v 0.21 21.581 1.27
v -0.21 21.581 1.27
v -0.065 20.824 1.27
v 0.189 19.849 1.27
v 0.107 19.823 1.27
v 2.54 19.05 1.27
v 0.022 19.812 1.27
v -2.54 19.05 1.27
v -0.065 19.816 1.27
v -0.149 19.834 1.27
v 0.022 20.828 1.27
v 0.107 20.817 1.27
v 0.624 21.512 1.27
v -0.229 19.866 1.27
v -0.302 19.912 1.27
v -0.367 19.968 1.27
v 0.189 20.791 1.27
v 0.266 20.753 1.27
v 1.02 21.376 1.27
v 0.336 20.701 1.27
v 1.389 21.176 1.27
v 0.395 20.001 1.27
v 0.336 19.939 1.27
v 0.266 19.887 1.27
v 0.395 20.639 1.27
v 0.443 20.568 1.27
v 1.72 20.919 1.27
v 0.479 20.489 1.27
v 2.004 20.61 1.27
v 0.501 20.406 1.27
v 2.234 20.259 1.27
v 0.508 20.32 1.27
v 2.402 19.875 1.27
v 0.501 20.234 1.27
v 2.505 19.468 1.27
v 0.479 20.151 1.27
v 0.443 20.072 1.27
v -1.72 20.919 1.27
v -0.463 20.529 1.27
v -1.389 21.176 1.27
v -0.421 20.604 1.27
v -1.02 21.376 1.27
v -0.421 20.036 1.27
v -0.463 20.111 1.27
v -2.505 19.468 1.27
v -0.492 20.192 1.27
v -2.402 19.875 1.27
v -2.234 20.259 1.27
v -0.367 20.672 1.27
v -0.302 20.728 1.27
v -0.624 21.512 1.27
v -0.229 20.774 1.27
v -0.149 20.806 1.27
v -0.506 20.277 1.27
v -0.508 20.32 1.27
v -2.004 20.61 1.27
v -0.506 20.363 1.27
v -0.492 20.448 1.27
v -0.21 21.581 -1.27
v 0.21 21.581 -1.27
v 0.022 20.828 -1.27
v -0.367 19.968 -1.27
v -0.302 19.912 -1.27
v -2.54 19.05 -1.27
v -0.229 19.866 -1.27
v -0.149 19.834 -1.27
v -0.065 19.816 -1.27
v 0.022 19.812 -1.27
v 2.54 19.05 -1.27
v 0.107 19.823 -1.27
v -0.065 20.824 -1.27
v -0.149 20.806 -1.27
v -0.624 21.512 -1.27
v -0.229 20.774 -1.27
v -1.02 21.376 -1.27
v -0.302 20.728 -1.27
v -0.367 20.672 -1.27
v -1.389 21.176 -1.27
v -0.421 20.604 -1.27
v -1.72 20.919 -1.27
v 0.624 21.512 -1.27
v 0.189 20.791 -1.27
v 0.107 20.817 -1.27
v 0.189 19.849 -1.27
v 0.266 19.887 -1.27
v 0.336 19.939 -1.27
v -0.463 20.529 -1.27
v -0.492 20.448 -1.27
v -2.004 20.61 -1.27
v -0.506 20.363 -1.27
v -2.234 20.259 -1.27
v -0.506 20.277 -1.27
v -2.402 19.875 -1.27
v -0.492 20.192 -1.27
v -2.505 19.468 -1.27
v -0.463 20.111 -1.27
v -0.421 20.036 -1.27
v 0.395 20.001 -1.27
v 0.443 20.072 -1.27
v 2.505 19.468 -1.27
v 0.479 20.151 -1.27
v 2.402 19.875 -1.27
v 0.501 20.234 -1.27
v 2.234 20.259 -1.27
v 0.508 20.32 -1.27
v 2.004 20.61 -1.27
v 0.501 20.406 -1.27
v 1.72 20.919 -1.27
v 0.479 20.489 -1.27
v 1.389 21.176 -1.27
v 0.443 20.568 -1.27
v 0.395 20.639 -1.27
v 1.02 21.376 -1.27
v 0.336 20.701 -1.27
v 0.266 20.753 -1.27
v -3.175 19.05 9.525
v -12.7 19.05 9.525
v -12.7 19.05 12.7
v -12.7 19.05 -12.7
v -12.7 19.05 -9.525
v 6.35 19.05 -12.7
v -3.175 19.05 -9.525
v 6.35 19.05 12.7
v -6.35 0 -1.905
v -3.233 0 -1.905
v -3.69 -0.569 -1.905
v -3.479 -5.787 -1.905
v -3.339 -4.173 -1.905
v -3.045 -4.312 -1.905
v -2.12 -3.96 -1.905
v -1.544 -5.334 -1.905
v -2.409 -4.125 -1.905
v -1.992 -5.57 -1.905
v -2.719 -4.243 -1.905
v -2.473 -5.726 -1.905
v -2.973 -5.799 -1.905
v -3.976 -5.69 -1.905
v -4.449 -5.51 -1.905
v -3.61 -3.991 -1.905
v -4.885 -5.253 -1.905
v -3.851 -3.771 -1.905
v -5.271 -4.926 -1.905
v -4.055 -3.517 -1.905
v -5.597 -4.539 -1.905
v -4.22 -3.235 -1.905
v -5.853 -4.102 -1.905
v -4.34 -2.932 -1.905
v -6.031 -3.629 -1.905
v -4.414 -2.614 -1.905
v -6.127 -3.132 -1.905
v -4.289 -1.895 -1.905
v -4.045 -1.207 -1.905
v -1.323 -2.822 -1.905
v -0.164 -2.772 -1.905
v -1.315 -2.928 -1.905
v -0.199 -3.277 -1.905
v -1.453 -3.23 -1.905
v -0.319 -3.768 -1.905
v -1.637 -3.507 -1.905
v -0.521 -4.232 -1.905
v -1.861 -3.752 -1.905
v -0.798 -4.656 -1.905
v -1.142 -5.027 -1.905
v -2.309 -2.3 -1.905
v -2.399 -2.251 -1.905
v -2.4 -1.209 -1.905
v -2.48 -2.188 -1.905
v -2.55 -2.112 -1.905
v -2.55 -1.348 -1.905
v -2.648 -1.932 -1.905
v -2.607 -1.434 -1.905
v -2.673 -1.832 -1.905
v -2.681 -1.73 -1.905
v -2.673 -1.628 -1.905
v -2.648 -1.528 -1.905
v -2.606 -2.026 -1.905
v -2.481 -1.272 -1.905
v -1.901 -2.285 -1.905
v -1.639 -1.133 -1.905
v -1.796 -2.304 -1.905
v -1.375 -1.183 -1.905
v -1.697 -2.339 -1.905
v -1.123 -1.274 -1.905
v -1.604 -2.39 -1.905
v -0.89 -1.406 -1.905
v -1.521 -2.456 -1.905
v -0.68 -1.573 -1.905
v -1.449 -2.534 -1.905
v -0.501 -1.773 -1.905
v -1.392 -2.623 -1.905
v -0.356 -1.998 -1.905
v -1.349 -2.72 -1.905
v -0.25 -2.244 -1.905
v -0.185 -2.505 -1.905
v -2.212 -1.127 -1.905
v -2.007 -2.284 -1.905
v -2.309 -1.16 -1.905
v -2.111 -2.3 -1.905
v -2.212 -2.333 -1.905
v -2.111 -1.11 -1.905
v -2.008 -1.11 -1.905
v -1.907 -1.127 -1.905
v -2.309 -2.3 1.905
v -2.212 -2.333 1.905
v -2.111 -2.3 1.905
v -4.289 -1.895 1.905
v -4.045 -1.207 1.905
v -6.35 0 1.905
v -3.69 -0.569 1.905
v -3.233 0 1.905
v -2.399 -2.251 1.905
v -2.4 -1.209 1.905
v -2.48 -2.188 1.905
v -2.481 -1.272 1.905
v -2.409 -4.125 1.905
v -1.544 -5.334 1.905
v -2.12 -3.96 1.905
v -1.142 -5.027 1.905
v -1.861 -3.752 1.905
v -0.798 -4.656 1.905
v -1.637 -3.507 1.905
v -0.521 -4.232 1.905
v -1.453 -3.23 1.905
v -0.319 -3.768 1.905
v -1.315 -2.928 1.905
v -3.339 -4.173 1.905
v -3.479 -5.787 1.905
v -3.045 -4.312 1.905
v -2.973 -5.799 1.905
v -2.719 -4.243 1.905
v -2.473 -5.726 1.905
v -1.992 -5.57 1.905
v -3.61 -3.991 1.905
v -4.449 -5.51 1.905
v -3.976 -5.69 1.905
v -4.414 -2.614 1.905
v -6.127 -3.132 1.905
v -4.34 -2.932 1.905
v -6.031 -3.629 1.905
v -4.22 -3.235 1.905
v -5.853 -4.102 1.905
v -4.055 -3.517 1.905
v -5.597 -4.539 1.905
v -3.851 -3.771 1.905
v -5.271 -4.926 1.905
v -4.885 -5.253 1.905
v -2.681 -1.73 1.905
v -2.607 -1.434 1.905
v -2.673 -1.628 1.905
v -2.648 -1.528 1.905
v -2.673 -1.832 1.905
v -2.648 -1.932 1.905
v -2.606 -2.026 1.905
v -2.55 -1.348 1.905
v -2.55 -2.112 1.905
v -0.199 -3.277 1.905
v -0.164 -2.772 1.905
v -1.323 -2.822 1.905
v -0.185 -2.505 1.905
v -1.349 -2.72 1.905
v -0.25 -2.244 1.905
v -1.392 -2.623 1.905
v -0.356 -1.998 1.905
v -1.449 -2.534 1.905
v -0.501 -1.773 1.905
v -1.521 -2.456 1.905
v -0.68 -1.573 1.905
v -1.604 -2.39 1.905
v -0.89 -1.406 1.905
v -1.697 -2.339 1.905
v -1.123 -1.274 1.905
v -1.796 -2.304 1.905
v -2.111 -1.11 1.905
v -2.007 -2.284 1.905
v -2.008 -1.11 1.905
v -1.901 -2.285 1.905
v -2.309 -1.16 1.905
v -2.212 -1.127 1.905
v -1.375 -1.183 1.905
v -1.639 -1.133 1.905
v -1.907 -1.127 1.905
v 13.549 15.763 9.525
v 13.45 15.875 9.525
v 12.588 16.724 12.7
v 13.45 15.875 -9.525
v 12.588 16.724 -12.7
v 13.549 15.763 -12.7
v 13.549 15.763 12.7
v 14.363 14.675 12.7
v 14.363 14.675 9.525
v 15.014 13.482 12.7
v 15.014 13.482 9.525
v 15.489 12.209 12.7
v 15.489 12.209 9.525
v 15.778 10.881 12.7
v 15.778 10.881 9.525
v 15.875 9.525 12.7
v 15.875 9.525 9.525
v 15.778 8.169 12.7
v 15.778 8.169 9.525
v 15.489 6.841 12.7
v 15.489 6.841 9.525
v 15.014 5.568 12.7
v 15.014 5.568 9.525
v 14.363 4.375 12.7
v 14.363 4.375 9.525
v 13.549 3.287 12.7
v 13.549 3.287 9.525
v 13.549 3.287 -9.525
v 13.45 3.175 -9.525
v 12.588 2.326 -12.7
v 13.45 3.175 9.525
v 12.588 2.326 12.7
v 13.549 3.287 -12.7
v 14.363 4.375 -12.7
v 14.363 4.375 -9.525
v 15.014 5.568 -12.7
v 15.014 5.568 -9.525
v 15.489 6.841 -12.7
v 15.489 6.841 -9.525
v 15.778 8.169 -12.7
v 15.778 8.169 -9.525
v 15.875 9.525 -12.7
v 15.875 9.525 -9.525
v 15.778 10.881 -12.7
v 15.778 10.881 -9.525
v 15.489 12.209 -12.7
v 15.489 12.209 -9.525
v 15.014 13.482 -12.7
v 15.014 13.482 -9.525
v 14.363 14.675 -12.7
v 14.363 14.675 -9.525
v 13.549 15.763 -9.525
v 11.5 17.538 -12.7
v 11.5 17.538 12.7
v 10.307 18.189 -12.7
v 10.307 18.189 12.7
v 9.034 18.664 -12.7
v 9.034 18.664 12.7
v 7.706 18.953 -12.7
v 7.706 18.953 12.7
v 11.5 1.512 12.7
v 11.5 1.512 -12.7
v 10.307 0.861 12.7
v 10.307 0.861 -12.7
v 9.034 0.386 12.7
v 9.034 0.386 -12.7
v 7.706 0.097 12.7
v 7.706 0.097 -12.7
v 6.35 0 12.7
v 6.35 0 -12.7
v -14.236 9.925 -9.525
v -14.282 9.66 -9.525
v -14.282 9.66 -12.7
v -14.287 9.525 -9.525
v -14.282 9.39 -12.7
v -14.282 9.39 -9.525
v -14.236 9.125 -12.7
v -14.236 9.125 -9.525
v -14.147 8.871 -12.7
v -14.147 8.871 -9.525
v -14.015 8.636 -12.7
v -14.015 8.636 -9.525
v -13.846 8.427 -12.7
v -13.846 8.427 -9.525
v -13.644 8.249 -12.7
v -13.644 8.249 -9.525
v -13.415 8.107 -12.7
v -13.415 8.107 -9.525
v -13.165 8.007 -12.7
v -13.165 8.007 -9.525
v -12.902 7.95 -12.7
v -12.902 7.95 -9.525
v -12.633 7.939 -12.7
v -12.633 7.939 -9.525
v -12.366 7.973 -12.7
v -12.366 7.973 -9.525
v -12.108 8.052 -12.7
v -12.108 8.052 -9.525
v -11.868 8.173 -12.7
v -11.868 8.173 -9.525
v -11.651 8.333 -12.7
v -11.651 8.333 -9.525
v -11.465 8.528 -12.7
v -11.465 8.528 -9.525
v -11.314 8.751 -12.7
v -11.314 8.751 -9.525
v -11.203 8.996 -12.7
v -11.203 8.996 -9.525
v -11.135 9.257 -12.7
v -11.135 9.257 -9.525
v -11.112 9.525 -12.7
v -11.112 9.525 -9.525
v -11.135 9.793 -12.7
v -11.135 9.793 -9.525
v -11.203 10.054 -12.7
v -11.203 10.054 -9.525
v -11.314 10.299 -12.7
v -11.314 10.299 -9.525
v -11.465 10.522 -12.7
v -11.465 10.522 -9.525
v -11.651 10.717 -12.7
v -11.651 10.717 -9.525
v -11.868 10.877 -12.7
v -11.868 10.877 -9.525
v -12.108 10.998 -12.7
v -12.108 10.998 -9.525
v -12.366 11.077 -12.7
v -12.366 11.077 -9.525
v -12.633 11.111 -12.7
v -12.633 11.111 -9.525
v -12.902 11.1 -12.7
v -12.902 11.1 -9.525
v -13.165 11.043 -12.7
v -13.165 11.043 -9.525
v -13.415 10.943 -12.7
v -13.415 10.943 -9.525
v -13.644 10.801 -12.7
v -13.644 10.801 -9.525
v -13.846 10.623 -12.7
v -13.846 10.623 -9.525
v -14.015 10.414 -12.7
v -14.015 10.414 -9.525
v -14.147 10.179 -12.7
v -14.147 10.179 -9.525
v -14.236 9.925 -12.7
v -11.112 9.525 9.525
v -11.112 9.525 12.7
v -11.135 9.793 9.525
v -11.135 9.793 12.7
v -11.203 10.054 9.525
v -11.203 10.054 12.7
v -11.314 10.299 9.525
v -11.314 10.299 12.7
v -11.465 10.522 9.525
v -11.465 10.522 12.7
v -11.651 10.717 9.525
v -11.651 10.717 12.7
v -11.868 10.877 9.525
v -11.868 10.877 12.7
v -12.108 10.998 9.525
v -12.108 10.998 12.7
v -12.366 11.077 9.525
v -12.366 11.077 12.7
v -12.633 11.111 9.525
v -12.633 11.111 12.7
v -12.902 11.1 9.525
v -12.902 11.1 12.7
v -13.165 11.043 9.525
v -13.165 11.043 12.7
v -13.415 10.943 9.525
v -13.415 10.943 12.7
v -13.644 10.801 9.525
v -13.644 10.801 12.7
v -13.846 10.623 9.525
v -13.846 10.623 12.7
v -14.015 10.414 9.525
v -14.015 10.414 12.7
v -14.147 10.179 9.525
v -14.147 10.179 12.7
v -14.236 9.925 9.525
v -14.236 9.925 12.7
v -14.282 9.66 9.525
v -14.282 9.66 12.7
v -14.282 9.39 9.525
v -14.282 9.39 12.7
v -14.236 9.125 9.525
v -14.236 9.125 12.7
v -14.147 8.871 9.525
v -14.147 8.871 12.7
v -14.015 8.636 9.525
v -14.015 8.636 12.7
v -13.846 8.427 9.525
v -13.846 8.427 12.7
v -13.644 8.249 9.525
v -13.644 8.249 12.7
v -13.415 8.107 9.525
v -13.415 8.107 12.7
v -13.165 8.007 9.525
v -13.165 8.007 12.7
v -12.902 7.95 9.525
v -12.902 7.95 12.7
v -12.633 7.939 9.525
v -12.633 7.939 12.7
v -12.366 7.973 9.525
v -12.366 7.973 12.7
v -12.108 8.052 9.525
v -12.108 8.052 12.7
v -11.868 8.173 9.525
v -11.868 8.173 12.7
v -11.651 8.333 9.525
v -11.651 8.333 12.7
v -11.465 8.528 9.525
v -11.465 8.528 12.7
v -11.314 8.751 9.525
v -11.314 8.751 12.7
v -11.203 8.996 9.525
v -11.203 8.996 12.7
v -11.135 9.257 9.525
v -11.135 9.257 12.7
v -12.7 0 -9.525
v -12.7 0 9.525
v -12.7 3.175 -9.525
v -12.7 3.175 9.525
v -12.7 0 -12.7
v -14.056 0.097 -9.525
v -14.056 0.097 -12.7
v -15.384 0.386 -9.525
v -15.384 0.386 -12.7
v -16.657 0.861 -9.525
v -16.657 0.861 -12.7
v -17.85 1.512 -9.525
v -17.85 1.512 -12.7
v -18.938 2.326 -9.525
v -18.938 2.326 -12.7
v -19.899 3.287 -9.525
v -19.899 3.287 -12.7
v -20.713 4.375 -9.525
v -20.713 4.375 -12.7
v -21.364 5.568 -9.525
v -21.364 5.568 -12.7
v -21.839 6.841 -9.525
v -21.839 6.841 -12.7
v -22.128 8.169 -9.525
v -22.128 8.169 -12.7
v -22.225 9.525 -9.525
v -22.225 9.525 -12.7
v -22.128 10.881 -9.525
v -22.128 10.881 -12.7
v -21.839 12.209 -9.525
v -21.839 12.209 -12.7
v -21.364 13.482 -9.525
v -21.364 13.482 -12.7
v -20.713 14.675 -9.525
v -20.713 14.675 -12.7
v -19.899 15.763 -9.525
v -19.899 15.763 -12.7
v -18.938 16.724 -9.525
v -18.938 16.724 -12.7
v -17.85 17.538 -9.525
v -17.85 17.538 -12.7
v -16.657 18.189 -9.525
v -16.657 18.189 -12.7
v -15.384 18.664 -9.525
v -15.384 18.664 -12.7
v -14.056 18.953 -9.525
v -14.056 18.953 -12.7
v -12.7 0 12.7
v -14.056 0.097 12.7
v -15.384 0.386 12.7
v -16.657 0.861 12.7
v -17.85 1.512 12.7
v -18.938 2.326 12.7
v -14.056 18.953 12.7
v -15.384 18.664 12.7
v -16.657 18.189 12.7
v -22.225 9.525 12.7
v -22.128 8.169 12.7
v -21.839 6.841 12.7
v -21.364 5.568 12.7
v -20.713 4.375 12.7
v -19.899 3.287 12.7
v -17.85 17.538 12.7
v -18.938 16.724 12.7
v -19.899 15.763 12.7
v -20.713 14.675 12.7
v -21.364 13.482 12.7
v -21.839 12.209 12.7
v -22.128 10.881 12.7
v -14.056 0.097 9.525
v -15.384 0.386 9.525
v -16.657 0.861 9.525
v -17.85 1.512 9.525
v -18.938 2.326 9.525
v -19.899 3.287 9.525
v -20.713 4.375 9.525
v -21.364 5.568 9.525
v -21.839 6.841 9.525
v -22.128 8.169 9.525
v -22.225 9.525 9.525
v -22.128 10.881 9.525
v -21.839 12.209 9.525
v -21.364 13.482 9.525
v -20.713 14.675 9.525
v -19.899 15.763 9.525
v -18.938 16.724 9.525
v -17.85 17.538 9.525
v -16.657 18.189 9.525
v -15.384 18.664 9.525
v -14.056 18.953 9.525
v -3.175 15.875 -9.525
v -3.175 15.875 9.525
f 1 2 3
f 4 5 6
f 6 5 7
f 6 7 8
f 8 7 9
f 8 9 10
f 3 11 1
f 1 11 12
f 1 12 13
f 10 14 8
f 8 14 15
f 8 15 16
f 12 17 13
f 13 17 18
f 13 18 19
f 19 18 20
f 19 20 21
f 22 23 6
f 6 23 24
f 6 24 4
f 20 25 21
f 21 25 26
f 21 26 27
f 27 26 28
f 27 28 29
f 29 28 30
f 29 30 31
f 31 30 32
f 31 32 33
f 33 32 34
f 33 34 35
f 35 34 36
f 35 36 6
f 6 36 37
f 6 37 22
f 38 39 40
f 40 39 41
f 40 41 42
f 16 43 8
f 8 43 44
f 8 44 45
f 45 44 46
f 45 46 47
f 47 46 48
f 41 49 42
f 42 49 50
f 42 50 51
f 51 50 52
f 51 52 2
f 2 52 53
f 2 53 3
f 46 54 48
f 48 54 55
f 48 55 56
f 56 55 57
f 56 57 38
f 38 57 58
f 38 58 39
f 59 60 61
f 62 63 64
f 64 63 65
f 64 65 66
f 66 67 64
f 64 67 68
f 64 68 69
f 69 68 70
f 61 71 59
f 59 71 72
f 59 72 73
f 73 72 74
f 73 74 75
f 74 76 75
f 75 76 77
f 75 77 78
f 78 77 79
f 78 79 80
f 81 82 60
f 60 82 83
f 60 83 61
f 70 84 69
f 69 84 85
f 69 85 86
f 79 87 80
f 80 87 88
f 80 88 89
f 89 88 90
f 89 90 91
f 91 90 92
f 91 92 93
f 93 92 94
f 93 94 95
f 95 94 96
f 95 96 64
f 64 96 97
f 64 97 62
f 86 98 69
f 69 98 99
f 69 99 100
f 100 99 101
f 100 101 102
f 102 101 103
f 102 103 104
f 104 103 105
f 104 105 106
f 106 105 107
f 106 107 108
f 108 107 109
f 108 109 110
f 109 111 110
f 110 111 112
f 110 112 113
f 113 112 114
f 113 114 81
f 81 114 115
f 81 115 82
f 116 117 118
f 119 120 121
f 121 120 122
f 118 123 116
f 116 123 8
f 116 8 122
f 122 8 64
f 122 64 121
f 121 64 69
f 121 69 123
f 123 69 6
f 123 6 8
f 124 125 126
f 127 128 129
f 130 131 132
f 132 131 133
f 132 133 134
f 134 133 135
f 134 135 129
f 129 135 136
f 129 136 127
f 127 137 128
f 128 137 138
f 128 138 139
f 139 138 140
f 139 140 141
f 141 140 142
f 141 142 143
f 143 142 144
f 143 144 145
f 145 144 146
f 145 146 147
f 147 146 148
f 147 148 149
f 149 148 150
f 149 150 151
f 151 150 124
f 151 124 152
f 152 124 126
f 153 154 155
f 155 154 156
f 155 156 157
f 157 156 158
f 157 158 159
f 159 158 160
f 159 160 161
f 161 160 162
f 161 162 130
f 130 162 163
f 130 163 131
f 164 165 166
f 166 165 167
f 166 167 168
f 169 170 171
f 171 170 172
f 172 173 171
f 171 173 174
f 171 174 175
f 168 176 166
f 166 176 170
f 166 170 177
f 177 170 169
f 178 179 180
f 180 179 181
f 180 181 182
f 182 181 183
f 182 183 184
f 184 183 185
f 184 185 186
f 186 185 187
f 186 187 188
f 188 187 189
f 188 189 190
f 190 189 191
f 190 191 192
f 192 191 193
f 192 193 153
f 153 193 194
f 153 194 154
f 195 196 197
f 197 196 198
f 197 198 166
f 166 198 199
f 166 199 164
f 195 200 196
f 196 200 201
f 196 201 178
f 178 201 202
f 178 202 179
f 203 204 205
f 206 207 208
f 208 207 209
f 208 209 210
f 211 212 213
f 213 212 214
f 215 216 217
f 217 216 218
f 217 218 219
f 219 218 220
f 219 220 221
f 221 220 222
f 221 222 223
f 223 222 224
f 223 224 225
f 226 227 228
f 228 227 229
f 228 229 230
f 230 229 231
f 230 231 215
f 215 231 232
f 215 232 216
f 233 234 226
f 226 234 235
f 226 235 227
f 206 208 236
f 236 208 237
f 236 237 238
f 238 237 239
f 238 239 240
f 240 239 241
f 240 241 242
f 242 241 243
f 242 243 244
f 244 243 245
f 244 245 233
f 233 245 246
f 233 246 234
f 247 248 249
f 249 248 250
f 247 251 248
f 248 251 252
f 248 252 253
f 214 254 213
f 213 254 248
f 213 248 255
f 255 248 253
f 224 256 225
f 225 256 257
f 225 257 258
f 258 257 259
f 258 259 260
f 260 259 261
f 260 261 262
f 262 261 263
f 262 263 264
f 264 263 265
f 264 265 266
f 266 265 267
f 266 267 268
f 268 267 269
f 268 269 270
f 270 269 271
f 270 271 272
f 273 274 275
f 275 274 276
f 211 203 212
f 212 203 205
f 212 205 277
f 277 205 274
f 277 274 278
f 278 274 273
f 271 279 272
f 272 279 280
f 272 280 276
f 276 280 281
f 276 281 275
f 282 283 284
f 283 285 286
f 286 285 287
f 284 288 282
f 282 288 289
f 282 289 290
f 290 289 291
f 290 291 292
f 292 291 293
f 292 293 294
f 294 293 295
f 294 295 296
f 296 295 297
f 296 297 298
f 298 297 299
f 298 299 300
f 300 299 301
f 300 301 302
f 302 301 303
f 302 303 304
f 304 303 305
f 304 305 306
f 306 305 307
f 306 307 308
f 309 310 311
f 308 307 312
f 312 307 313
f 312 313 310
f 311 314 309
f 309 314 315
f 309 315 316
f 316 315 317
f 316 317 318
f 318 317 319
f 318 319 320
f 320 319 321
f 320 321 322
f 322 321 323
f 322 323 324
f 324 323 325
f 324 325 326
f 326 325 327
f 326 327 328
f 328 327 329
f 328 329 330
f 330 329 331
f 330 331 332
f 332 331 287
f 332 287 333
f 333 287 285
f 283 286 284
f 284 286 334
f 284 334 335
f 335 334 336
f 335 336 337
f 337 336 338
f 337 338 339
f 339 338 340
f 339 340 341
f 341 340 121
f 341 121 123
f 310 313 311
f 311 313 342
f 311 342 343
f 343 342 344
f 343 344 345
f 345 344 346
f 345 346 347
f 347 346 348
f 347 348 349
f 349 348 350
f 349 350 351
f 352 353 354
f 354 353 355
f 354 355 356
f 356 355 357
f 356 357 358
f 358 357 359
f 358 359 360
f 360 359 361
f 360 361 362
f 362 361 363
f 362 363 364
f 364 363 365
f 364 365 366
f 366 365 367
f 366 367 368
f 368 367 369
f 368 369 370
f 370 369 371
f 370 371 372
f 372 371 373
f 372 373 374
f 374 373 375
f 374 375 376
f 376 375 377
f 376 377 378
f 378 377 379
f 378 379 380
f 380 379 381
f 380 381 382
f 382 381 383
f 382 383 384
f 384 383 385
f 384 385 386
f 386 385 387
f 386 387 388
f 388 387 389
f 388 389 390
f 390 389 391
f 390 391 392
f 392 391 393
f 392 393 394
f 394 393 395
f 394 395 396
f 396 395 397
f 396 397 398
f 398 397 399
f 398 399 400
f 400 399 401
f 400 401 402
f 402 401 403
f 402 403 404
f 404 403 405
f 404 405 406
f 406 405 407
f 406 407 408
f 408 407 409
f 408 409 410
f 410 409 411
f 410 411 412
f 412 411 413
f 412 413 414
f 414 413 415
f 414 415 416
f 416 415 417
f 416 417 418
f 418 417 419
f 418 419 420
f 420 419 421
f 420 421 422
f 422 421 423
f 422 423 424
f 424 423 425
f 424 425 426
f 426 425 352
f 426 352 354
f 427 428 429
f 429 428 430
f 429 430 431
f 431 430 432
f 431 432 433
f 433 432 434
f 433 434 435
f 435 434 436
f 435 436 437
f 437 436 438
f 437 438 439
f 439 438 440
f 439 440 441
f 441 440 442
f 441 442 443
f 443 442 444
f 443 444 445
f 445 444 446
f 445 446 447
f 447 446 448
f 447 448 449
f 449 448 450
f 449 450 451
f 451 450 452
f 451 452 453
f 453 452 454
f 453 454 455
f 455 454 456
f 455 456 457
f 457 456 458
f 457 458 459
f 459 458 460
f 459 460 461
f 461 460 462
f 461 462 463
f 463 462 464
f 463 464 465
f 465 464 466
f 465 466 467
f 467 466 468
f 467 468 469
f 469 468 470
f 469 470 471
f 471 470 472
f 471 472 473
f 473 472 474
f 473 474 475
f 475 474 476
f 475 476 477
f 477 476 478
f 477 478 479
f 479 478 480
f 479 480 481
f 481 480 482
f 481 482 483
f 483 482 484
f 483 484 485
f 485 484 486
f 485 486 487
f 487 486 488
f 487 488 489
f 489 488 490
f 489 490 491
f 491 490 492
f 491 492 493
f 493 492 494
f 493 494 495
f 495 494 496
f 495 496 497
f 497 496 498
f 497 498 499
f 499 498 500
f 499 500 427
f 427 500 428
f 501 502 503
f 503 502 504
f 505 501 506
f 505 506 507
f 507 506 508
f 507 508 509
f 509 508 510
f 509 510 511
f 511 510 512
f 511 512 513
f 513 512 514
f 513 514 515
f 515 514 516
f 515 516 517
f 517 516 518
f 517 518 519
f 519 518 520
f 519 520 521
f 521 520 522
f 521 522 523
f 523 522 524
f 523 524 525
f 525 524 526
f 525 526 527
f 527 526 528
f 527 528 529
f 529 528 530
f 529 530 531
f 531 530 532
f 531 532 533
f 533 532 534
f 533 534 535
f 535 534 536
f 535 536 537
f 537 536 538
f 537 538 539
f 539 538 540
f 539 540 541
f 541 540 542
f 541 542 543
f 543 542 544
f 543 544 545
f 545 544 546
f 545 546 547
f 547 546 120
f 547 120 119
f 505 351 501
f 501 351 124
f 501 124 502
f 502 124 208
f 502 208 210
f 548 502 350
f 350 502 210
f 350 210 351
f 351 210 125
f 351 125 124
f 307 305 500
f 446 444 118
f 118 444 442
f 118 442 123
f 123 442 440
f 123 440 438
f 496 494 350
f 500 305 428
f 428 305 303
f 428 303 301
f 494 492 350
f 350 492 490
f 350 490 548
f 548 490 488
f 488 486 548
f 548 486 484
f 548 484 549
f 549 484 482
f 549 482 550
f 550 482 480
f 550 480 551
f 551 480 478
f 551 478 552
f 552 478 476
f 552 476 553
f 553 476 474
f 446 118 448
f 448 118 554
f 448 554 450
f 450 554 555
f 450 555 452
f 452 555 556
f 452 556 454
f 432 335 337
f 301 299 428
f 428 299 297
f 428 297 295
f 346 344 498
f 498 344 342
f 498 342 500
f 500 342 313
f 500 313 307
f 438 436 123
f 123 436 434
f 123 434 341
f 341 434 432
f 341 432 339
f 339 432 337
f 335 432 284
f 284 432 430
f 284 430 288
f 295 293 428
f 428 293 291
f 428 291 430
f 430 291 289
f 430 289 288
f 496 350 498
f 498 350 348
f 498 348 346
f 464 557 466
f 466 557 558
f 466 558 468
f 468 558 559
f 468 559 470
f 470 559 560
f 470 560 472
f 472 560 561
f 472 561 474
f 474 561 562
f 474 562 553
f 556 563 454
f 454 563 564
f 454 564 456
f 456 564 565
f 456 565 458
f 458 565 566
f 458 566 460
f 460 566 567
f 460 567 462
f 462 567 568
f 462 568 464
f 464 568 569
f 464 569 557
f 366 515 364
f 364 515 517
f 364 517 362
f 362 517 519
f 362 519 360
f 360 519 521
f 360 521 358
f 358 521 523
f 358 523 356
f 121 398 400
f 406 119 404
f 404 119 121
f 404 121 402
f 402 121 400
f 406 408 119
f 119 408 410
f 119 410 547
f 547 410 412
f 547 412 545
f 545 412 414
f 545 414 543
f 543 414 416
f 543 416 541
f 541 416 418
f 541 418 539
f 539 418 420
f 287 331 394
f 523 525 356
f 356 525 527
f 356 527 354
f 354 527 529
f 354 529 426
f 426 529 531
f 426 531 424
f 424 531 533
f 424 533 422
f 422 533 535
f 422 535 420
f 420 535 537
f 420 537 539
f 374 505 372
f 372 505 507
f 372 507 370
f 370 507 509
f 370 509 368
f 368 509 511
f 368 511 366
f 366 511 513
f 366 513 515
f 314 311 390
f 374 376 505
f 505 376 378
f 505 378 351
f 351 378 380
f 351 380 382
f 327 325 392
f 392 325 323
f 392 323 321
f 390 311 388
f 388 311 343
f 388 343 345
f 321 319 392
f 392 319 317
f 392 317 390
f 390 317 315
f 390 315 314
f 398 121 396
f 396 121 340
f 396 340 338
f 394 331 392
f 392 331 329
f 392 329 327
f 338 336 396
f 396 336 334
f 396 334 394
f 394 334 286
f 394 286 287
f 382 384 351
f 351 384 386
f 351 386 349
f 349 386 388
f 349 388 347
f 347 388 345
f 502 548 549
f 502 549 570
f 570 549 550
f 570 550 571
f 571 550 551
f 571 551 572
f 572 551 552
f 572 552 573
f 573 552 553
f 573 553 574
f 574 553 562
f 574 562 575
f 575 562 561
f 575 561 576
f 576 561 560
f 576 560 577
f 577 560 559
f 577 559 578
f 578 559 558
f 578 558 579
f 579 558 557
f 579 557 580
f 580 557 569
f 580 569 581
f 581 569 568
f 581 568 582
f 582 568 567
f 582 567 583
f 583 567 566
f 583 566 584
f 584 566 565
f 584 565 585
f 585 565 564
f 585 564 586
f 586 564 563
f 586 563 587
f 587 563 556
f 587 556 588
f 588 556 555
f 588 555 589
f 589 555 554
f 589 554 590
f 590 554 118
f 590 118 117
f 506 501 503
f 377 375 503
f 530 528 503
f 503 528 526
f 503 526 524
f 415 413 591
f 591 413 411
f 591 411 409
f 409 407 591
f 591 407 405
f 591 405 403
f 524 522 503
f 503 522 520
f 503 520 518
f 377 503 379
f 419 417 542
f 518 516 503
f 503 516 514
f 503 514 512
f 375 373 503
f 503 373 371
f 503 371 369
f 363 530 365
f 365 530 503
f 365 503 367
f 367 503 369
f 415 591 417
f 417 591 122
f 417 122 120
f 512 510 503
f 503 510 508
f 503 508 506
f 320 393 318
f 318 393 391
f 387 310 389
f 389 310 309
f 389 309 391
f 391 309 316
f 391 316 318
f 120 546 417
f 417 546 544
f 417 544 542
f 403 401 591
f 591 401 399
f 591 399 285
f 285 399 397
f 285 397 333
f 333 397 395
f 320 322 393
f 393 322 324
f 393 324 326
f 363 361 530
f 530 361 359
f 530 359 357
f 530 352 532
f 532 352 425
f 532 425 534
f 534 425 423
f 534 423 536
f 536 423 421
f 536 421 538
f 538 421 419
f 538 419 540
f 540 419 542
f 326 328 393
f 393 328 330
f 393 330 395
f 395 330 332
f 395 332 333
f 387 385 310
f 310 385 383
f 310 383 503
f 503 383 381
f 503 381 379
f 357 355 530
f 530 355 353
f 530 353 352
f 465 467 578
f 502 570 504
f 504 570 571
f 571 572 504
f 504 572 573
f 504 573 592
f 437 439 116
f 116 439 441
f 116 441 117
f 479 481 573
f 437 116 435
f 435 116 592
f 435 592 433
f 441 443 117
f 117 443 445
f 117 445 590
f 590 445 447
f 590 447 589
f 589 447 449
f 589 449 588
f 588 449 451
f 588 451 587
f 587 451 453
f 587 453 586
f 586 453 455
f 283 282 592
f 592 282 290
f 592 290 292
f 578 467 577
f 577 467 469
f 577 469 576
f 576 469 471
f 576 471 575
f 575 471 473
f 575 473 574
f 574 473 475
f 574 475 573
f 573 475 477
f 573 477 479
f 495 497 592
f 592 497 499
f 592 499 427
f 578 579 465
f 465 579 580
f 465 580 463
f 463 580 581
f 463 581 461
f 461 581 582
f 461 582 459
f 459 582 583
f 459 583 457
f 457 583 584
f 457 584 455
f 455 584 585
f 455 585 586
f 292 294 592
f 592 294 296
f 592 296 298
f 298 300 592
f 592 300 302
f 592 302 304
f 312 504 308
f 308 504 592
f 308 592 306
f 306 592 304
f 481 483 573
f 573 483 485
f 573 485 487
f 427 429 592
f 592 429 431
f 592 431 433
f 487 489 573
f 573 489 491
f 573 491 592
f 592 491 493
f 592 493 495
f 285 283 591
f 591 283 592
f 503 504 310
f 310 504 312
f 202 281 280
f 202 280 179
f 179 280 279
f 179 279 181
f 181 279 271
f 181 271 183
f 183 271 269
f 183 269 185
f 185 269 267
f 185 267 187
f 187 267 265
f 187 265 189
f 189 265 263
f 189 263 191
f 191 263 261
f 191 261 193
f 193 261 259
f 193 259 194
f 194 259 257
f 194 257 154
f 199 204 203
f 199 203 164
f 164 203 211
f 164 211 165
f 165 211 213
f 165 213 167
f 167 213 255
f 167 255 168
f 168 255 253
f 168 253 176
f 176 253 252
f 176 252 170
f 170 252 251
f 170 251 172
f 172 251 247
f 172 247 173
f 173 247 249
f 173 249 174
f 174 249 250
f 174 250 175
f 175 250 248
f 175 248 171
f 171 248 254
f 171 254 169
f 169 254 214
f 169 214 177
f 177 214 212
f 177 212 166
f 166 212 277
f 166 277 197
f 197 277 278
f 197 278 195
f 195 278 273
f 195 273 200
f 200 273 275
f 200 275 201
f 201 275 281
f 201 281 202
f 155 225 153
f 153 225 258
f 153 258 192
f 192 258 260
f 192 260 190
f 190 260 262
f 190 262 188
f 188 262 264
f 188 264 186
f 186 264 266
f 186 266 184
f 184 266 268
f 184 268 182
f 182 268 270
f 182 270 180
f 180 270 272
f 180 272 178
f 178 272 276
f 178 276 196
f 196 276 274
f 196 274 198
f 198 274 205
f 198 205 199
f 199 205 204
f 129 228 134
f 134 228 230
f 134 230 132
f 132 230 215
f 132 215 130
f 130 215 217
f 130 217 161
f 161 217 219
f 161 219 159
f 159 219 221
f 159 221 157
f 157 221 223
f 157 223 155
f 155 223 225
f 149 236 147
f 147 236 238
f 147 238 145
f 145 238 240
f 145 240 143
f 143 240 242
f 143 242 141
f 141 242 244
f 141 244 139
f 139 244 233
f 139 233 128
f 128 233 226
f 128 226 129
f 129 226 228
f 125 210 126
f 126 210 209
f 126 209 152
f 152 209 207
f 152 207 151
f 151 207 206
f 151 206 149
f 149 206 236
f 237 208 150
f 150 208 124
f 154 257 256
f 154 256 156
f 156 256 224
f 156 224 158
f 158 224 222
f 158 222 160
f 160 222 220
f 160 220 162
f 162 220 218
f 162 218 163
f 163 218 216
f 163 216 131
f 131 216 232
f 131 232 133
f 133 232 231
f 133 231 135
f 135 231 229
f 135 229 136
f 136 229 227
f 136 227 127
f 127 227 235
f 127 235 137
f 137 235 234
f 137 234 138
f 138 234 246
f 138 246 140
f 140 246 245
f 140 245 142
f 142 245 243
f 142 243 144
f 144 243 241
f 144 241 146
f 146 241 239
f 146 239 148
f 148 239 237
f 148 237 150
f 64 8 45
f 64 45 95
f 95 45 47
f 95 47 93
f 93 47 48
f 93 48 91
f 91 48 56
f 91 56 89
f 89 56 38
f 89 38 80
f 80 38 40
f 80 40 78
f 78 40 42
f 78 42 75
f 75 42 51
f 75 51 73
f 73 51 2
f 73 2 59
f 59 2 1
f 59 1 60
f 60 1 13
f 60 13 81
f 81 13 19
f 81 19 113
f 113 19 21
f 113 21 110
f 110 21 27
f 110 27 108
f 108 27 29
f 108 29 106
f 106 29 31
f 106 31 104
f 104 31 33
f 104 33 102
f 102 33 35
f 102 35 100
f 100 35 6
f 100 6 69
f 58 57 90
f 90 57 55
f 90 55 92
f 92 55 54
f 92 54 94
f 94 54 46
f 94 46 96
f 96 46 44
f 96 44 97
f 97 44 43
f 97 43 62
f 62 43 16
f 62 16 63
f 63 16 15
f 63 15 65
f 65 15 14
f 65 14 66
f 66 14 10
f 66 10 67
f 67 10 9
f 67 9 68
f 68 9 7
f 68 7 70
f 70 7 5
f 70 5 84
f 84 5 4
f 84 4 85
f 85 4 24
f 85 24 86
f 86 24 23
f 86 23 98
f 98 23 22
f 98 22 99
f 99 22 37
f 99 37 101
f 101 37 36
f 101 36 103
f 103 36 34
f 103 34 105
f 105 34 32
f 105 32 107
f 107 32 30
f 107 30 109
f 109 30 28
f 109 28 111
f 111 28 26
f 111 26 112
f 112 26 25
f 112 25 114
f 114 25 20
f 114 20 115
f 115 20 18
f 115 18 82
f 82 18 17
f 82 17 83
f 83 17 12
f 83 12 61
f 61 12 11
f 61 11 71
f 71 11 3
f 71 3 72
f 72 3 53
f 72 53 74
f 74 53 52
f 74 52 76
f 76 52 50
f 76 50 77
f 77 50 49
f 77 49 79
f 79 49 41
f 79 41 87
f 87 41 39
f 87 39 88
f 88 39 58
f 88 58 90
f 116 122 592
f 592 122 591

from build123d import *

# Parameters (mm, degrees)
SKETCH1_W           = 38.1
SKETCH1_H           = 25.4
BOSS_EXTRUDE1_DEPTH = 19.05
SKETCH2_R           = 1.5875
CUT_EXTRUDE2_DEPTH  = 25.4
SKETCH3_W           = 12.108446299
SKETCH3_H           = 19.05
CUT_EXTRUDE3_DEPTH  = 19.05
SKETCH4_W           = 19.05
SKETCH4_H           = 12.7
CUT_EXTRUDE4_DEPTH  = 50.8
SKETCH6_W           = 7.660570014
SKETCH6_H           = 3.81
BOSS_EXTRUDE2_DEPTH = 7.62
CUT_EXTRUDE6_DEPTH  = 19.05
SKETCH8_W           = 5.08
SKETCH8_H           = 2.54
BOSS_EXTRUDE3_DEPTH = 2.54
SKETCH9_R           = 0.508
CUT_EXTRUDE7_DEPTH  = 19.05
SKETCH10_W          = 9.525
SKETCH10_H          = 19.05
CUT_EXTRUDE8_DEPTH  = 3.81


with BuildPart() as part:
    # Sketch1 → Boss-Extrude1 (new body)
    with BuildSketch(Plane(origin=(0, 0, 0), x_dir=(1, 0, 0), z_dir=(0, 1, 0))):
        with Locations((-3.175, 0)):
            Rectangle(SKETCH1_W, SKETCH1_H)
    extrude(amount=BOSS_EXTRUDE1_DEPTH)

    # Sketch2 → Cut-Extrude2 (cut)
    with BuildSketch(Plane.XY.offset(12.7)):
        with Locations((-12.7, 9.525)):
            Circle(SKETCH2_R)
        with BuildLine():
            ThreePointArc((-12.7, 19.05), (-22.225, 9.525), (-12.7, 0))
            ThreePointArc((-12.7, 0), (-33.665146333, 9.525), (-12.7, 19.05))
        make_face()
        with BuildLine():
            ThreePointArc((6.35, 0), (15.875, 9.525), (6.35, 19.05))
            ThreePointArc((6.35, 19.05), (24.948138119, 9.525), (6.35, 0))
        make_face()
    extrude(amount=-CUT_EXTRUDE2_DEPTH, mode=Mode.SUBTRACT)

    # Sketch3 → Cut-Extrude3 (cut)
    with BuildSketch(Plane(origin=(0, 19.05, 0), x_dir=(1, 0, 0), z_dir=(0, 1, 0))):
        with Locations((-18.754223149, 0)):
            Rectangle(SKETCH3_W, SKETCH3_H)
    extrude(amount=-CUT_EXTRUDE3_DEPTH, mode=Mode.SUBTRACT)

    # Sketch4 → Cut-Extrude4 (cut)
    with BuildSketch(Plane(origin=(-15.875, 0, 0), x_dir=(0, 0, -1), z_dir=(1, 0, 0))):
        with Locations((0, 9.525)):
            Rectangle(SKETCH4_W, SKETCH4_H)
    extrude(amount=CUT_EXTRUDE4_DEPTH, mode=Mode.SUBTRACT)

    # Sketch6 → Boss-Extrude2 (add)
    with BuildSketch(Plane(origin=(0, 0, 0), x_dir=(1, 0, 0), z_dir=(0, 1, 0))):
        with Locations((-2.519714993, 0)):
            Rectangle(SKETCH6_W, SKETCH6_H)
    extrude(amount=-BOSS_EXTRUDE2_DEPTH)

    # Sketch7 → Cut-Extrude6 (cut)
    with BuildSketch(Plane.XY.offset(12.7)):
        with BuildLine():
            Line((-7.080935196, -3.131729905), (-6.858, 0))
            Line((-6.858, 0), (-6.858, -7.767816491))
            Line((-6.858, -7.767816491), (-14.771031914, -7.767816491))
            Line((-14.771031914, -7.767816491), (-14.771031914, 0))
            Line((-14.771031914, 0), (-9.975013633, 0))
            ThreePointArc((-9.975013633, 0), (-9.162678538, -1.206904896), (-8.794375076, -2.614335284))
            ThreePointArc((-8.794375076, -2.614335284), (-9.25025826, -3.647474967), (-10.163496252, -4.311706442))
            ThreePointArc((-10.163496252, -4.311706442), (-11.221462334, -3.861030674), (-11.89339597, -2.927807191))
            ThreePointArc((-11.89339597, -2.927807191), (-11.604147707, -2.390005207), (-10.996168015, -2.332941862))
            ThreePointArc((-10.996168015, -2.332941862), (-10.54556137, -1.577353268), (-11.301149964, -1.126746624))
            ThreePointArc((-11.301149964, -1.126746624), (-12.52752029, -1.573373178), (-13.044460874, -2.771802103))
            ThreePointArc((-13.044460874, -2.771802103), (-12.016160281, -5.071387383), (-9.595781192, -5.769427237))
            ThreePointArc((-9.595781192, -5.769427237), (-7.890109837, -4.877949662), (-7.080935196, -3.131729905))
        make_face()
        with BuildLine():
            Line((1.563031914, 0), (-3.232986367, 0))
            ThreePointArc((-3.232986367, 0), (-4.045321462, -1.206904896), (-4.413624924, -2.614335284))
            ThreePointArc((-4.413624924, -2.614335284), (-3.95774174, -3.647474967), (-3.044503748, -4.311706442))
            ThreePointArc((-3.044503748, -4.311706442), (-1.986537666, -3.861030674), (-1.31460403, -2.927807191))
            ThreePointArc((-1.31460403, -2.927807191), (-1.603852293, -2.390005207), (-2.211831985, -2.332941862))
            ThreePointArc((-2.211831985, -2.332941862), (-2.66243863, -1.577353268), (-1.906850036, -1.126746624))
            ThreePointArc((-1.906850036, -1.126746624), (-0.68047971, -1.573373178), (-0.163539126, -2.771802103))
            ThreePointArc((-0.163539126, -2.771802103), (-1.191839719, -5.071387383), (-3.612218808, -5.769427237))
            ThreePointArc((-3.612218808, -5.769427237), (-5.317890163, -4.877949662), (-6.127064804, -3.131729905))
            Line((-6.127064804, -3.131729905), (-6.35, 0))
            Line((-6.35, 0), (-6.35, -7.767816491))
            Line((-6.35, -7.767816491), (1.563031914, -7.767816491))
            Line((1.563031914, -7.767816491), (1.563031914, 0))
        make_face()
    extrude(amount=-CUT_EXTRUDE6_DEPTH, mode=Mode.SUBTRACT)

    # Sketch8 → Boss-Extrude3 (add)
    with BuildSketch(Plane(origin=(0, 19.05, 0), x_dir=(1, 0, 0), z_dir=(0, 1, 0))):
        Rectangle(SKETCH8_W, SKETCH8_H)
    extrude(amount=BOSS_EXTRUDE3_DEPTH)

    # Sketch9 → Cut-Extrude7 (cut)
    with BuildSketch(Plane.XY.offset(12.7)):
        with Locations((0, 20.32)):
            Circle(SKETCH9_R)
        with BuildLine():
            ThreePointArc((-2.54, 19.05), (0, 21.59), (2.54, 19.05))
            ThreePointArc((2.54, 19.05), (0, 23.383223271), (-2.54, 19.05))
        make_face()
    extrude(amount=-CUT_EXTRUDE7_DEPTH, mode=Mode.SUBTRACT)

    # Sketch10 → Cut-Extrude8 (cut)
    with BuildSketch(Plane(origin=(0, 19.05, 0), x_dir=(1, 0, 0), z_dir=(0, 1, 0))):
        with Locations((-7.9375, 0)):
            Rectangle(SKETCH10_W, SKETCH10_H)
    extrude(amount=-CUT_EXTRUDE8_DEPTH, mode=Mode.SUBTRACT)


solid = part.part
